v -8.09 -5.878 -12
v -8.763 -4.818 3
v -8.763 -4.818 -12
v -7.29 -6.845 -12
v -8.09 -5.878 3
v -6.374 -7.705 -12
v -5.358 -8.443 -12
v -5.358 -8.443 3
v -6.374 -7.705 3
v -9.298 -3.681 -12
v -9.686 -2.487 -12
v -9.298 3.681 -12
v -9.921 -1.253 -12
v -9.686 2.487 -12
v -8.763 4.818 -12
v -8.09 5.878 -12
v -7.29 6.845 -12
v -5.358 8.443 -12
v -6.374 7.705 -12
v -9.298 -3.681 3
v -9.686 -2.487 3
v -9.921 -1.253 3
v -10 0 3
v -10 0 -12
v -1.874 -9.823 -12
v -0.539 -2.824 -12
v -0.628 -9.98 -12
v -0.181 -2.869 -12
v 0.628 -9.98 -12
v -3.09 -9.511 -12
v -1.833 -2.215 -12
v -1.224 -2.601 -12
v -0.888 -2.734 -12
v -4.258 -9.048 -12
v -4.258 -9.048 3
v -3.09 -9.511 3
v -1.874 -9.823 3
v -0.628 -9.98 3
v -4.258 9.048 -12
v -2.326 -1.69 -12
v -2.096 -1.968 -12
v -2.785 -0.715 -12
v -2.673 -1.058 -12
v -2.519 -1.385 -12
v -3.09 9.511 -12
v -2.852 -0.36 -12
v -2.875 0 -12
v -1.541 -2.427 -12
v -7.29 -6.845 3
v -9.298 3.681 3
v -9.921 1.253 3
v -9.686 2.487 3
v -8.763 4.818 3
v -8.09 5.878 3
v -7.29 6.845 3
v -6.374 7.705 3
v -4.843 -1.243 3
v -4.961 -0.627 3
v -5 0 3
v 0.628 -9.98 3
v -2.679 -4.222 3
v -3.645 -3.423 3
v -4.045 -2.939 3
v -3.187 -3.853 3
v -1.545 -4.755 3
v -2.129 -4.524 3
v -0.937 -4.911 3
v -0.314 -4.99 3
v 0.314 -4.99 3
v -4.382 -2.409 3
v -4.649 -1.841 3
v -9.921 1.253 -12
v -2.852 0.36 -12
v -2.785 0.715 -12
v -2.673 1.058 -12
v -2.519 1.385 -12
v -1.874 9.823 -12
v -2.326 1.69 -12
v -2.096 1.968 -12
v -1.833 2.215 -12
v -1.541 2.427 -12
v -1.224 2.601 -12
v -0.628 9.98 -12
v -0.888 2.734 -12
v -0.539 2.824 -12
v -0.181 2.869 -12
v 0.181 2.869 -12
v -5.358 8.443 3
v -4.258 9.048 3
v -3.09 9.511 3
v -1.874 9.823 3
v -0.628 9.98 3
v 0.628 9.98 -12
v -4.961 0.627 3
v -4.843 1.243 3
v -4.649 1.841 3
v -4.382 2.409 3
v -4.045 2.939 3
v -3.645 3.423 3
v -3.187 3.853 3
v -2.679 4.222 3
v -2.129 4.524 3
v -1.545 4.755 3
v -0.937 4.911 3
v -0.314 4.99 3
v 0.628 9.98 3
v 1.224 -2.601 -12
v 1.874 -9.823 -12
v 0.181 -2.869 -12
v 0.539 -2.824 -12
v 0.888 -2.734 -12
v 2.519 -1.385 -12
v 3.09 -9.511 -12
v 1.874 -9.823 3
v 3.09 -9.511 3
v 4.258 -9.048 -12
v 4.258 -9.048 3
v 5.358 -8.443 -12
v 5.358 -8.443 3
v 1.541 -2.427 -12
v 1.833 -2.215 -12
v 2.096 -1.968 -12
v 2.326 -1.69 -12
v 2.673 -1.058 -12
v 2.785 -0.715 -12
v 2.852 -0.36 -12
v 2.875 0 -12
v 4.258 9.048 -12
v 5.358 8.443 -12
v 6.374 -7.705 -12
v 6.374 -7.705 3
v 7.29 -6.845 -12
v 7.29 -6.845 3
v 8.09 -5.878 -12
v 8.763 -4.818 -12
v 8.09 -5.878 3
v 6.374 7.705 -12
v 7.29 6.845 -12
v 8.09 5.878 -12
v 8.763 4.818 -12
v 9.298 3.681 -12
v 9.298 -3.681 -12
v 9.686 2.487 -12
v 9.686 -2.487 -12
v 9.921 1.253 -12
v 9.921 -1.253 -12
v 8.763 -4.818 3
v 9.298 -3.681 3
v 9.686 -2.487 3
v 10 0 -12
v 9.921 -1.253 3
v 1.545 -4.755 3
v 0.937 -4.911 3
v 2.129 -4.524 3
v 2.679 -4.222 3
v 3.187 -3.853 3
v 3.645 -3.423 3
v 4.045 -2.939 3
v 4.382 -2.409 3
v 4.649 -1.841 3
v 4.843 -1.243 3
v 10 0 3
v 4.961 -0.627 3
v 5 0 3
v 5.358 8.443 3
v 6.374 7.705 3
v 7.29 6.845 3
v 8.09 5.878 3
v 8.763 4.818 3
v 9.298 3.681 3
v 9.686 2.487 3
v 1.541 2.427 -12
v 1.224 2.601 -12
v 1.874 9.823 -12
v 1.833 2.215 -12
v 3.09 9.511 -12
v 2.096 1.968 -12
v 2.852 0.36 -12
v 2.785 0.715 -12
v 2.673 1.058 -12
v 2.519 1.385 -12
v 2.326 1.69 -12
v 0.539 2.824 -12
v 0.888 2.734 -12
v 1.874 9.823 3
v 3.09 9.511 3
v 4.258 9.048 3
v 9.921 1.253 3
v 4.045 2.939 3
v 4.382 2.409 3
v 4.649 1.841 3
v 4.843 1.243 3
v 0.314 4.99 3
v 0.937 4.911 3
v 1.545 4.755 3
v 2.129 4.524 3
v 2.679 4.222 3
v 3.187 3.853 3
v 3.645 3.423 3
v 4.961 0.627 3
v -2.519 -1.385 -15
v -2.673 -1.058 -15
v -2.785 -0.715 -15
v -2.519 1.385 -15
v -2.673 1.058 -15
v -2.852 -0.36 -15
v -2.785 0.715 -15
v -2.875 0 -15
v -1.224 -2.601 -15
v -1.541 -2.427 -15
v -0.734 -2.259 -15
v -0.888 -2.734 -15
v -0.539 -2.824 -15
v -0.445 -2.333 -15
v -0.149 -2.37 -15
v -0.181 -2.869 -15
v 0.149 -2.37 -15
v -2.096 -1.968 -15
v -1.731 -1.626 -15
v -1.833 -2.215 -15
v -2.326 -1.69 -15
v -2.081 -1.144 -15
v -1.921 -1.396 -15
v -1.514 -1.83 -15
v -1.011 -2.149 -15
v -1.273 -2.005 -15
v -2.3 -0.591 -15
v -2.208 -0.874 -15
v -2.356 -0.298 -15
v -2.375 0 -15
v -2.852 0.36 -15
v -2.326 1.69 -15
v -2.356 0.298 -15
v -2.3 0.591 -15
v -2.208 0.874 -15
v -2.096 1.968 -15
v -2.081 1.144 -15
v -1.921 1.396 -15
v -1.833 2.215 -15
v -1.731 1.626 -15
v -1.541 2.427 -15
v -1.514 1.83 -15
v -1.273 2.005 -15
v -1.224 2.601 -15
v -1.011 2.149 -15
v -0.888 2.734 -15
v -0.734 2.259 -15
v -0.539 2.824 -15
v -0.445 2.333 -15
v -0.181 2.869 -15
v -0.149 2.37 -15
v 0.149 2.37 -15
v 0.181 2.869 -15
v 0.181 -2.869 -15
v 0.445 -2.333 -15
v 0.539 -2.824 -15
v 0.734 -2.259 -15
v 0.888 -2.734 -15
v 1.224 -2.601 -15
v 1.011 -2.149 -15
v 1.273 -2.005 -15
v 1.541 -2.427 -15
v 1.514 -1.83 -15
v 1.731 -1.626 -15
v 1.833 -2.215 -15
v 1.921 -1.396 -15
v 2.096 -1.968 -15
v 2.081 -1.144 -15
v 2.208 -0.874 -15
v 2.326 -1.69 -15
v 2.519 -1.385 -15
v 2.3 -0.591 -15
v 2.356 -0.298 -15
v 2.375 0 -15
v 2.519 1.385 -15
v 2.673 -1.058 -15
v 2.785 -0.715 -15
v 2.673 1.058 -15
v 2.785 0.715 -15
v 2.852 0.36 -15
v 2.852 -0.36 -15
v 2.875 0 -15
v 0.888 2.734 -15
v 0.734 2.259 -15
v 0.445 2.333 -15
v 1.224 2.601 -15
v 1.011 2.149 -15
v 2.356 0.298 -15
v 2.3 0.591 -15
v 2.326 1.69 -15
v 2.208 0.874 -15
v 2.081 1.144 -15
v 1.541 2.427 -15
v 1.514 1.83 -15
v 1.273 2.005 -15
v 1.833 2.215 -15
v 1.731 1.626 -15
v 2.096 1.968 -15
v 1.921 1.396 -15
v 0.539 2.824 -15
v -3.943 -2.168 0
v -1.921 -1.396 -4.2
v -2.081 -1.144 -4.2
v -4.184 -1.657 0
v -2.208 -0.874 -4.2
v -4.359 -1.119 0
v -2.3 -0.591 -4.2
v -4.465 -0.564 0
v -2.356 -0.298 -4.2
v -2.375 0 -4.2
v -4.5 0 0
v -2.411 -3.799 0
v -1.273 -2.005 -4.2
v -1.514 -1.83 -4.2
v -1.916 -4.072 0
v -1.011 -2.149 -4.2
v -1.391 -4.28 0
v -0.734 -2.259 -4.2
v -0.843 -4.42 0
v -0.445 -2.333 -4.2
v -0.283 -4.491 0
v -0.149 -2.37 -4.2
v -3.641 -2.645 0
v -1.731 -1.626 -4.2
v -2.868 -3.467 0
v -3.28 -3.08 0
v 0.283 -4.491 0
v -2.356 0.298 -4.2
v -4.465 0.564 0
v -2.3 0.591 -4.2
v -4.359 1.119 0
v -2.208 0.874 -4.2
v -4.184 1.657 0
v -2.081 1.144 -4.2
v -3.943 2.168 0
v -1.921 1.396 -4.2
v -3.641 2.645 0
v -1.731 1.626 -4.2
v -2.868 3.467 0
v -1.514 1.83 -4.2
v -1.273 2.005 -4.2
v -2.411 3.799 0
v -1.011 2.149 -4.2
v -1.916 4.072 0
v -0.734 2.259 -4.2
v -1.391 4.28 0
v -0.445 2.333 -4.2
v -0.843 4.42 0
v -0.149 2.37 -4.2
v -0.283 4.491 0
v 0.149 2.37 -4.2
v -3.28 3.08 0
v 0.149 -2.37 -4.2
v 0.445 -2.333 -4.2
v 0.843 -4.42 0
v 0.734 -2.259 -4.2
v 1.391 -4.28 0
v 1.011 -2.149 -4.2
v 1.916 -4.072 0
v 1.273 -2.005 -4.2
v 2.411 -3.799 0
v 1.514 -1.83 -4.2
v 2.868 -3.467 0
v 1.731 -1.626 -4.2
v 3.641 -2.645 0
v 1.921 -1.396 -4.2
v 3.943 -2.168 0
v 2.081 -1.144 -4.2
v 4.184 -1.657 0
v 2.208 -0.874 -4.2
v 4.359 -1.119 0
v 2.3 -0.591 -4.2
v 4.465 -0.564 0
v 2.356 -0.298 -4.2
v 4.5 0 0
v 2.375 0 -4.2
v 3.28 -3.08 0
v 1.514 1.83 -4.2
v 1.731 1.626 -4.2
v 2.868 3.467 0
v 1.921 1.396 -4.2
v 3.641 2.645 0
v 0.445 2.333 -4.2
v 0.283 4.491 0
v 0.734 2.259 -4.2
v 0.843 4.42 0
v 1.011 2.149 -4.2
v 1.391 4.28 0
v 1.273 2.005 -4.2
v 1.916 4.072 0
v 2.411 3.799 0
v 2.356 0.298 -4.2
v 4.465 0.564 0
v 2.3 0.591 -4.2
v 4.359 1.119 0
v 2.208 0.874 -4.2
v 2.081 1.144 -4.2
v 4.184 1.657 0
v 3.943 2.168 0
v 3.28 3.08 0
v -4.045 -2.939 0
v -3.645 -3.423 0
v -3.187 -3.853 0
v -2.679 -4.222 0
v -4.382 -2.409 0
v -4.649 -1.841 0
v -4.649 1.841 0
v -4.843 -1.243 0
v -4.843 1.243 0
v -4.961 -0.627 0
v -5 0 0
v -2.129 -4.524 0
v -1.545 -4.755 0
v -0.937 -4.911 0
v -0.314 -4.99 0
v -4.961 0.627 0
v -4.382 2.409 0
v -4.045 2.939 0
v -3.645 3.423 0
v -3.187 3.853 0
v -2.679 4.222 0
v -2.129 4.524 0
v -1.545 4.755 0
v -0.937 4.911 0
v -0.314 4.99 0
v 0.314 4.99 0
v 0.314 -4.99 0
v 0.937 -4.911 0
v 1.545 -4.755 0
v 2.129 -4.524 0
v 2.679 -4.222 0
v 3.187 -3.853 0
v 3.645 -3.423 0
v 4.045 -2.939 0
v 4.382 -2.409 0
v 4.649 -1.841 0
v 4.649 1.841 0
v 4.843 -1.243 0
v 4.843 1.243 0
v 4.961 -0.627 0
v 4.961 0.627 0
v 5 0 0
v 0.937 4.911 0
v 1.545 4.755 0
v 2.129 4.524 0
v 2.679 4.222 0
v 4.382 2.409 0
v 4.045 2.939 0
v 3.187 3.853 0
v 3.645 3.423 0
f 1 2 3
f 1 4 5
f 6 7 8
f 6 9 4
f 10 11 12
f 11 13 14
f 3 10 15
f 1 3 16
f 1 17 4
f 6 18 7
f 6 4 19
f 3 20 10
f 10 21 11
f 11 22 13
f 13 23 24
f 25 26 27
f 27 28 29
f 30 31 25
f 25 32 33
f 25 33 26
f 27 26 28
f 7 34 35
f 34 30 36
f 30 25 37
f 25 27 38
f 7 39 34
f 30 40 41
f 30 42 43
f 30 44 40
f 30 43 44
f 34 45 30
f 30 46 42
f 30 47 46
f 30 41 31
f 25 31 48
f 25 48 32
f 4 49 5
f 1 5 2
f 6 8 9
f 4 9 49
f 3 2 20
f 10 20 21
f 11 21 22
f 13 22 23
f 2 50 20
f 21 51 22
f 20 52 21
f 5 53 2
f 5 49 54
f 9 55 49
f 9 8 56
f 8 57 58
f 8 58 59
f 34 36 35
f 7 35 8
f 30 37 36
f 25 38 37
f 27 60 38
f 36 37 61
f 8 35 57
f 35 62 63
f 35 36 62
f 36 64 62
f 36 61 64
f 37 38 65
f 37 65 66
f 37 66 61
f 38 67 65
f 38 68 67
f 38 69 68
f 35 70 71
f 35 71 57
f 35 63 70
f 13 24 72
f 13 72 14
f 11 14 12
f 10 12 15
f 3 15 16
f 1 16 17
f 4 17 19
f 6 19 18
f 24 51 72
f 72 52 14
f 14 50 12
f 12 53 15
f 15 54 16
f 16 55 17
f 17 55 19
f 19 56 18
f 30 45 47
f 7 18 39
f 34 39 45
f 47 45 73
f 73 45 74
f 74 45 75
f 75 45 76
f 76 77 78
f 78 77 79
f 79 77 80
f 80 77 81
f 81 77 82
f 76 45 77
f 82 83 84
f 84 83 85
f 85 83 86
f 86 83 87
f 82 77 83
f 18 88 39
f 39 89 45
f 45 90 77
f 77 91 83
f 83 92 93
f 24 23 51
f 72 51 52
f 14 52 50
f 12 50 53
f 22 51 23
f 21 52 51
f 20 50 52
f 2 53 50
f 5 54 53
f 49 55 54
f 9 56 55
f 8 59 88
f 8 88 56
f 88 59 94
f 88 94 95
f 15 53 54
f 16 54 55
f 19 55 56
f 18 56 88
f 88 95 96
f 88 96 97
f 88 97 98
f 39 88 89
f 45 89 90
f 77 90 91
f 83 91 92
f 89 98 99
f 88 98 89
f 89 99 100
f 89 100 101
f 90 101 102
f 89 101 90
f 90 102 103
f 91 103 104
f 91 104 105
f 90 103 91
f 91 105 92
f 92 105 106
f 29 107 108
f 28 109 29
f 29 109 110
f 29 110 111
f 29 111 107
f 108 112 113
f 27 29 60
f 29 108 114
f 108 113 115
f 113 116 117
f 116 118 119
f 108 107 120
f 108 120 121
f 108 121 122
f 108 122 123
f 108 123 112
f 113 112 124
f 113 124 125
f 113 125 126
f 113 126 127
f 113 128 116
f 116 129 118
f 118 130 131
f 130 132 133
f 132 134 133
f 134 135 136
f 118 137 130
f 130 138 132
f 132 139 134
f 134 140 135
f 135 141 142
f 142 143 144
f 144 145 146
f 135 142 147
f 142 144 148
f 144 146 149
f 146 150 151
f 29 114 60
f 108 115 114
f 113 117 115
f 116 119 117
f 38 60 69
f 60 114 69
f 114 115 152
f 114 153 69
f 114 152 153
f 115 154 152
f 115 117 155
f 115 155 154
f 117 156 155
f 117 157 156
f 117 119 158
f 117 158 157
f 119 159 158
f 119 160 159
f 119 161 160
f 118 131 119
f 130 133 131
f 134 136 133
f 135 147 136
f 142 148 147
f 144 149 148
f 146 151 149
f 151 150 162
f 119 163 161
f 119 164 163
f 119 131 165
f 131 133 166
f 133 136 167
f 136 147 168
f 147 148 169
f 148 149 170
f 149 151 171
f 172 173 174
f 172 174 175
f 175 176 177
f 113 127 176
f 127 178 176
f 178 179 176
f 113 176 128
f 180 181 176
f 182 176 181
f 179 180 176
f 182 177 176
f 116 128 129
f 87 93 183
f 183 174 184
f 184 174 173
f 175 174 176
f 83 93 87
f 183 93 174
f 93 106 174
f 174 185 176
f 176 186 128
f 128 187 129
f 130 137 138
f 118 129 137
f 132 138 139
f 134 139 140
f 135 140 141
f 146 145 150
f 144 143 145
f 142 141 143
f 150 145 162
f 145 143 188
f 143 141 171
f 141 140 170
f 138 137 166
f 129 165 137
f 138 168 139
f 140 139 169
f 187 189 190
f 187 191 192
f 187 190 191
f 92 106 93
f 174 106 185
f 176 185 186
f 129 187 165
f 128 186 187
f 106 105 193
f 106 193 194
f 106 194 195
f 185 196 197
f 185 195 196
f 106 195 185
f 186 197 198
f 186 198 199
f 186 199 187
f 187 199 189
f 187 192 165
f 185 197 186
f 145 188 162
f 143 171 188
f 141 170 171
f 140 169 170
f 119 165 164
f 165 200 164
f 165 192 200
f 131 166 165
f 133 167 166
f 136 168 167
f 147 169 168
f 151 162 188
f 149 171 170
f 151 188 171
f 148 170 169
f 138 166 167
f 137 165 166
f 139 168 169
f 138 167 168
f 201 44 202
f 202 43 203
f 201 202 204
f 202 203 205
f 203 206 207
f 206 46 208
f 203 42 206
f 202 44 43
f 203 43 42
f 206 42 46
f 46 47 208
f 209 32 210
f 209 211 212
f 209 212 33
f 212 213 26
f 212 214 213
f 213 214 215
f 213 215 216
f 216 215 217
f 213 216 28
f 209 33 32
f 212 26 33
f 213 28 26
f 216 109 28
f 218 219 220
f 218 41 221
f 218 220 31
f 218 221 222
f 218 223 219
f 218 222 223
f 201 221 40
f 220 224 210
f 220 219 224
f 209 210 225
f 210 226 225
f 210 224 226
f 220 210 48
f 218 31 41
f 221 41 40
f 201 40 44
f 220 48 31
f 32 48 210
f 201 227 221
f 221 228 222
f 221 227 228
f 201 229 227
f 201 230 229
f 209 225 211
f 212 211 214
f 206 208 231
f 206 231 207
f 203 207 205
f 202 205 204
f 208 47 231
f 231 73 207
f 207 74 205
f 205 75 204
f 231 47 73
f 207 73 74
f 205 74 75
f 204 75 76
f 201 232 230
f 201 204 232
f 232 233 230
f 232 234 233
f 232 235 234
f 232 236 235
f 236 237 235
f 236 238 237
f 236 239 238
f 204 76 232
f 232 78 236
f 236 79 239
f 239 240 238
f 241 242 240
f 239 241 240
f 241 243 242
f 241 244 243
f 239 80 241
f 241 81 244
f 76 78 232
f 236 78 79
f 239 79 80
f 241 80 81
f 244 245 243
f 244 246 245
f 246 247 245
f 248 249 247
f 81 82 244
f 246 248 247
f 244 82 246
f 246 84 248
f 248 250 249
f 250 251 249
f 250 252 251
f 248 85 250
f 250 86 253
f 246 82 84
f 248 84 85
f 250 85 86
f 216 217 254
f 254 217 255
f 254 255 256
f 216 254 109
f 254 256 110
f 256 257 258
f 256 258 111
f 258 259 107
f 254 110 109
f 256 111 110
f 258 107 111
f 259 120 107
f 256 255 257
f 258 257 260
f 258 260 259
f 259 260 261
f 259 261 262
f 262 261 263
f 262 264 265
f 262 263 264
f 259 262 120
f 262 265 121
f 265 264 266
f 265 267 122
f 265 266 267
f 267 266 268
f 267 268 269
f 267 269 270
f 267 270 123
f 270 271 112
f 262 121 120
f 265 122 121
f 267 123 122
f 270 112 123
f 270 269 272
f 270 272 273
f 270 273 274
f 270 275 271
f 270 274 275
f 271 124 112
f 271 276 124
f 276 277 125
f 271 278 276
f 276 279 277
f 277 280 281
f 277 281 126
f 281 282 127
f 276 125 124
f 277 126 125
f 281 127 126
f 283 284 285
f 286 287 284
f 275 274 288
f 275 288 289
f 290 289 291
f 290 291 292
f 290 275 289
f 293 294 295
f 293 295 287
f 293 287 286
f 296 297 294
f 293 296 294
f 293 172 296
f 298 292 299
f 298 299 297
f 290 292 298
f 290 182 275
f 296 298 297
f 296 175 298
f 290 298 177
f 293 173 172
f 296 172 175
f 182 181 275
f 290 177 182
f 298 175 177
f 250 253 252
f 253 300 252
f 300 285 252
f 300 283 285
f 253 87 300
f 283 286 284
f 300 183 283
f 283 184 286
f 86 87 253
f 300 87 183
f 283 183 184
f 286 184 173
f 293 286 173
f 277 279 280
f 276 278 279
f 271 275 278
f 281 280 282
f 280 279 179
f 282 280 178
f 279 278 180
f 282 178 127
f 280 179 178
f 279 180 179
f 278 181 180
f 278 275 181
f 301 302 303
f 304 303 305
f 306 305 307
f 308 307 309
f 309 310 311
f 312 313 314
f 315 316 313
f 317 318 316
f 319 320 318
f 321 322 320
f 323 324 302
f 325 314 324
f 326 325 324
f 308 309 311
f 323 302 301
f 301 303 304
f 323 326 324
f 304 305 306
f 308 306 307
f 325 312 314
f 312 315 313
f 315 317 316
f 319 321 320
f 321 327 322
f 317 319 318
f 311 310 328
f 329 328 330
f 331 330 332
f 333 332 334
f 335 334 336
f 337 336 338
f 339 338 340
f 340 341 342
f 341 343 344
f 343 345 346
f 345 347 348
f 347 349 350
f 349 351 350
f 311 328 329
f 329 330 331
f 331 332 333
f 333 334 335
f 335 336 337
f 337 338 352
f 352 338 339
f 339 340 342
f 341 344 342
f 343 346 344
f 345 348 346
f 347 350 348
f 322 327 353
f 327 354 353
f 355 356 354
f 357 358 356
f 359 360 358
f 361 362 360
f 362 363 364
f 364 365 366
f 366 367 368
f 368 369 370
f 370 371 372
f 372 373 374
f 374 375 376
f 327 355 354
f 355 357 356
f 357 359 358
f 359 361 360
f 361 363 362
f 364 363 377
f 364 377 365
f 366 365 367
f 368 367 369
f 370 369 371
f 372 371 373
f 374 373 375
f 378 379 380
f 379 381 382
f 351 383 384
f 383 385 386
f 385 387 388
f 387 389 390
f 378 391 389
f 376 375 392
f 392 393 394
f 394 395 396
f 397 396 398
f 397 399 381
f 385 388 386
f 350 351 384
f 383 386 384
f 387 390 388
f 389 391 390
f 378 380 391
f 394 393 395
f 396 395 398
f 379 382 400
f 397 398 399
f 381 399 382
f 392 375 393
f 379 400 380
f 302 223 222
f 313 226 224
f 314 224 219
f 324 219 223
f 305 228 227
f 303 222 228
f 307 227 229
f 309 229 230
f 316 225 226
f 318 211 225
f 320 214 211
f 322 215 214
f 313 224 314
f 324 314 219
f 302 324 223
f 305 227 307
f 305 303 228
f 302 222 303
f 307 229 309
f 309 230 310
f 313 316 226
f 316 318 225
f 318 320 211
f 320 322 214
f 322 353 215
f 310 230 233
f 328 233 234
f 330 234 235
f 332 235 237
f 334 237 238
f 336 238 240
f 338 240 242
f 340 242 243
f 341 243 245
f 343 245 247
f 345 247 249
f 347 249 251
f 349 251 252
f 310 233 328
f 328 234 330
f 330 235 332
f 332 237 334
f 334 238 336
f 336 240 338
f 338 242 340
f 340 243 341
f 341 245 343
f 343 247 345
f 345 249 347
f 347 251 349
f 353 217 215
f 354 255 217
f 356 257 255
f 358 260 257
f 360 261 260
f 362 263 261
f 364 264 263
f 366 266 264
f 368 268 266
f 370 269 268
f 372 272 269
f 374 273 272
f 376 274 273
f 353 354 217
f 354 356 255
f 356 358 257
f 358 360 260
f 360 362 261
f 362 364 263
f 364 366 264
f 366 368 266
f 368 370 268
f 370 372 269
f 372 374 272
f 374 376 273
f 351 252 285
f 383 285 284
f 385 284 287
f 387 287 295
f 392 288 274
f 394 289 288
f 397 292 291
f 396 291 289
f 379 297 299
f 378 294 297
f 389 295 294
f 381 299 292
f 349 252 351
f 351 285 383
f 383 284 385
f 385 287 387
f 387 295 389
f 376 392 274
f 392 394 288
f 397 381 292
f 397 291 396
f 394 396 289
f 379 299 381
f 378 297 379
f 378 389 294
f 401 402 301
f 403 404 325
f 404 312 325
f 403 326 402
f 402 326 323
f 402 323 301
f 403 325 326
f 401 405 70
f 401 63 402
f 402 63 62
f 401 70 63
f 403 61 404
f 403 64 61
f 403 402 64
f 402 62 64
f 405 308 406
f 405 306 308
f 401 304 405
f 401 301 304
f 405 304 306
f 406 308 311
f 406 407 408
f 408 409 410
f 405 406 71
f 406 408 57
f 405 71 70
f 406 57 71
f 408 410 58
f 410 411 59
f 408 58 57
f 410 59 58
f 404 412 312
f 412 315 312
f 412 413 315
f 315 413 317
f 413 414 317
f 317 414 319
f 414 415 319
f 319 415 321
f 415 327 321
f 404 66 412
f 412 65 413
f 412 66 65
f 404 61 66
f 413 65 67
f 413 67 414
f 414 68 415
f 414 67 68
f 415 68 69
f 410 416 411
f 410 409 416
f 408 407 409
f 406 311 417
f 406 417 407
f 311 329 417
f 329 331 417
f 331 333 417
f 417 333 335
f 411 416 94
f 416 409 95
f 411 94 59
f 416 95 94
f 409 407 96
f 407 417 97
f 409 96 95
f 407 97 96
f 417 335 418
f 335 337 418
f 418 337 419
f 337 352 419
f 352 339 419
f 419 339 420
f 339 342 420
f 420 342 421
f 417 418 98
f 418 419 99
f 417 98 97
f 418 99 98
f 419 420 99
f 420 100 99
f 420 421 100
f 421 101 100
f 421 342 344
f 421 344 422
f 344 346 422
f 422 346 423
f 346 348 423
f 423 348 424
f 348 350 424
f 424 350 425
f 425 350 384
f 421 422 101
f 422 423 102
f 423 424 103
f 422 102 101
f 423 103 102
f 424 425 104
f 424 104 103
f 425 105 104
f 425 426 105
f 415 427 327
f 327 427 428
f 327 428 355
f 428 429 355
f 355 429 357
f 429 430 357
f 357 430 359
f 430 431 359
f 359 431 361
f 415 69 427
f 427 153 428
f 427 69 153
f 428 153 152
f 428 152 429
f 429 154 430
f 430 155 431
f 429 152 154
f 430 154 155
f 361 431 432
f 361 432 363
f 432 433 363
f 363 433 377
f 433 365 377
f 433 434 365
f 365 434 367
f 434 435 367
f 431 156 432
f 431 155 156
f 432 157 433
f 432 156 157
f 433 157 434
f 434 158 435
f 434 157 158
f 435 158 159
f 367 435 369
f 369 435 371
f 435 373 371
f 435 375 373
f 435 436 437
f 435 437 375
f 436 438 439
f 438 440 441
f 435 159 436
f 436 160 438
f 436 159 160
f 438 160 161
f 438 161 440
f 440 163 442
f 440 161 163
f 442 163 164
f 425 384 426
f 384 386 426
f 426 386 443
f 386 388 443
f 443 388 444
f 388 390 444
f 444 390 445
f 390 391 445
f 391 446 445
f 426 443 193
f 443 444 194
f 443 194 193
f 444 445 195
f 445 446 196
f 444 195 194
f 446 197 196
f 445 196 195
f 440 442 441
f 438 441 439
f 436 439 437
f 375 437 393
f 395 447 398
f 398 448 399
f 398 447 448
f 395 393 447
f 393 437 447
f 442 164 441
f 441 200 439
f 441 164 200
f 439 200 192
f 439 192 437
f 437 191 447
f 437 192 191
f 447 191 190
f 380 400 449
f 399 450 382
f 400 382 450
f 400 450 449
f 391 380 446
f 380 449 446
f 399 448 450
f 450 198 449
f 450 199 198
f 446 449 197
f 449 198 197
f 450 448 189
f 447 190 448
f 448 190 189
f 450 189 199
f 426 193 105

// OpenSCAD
$fn = 50;

difference() {
	union() {
		translate(v = [0, 0, -12.0]) {
			cylinder(h = 15, r = 10.0);
		}
		#translate(v = [0, 0, -15.0]) {
			cylinder(h = 15, r = 2.875);
		}
	}
	union() {
		translate(v = [0, 0, 0]) {
			rotate(a = [0, 0, 0]) {
				difference() {
					union() {
						translate(v = [0, 0, -15.0]) {
							cylinder(h = 15, r = 2.25);
						}
						translate(v = [0, 0, -4.2]) {
							cylinder(h = 4.2, r1 = 2.375, r2 = 4.5);
						}
						translate(v = [0, 0, -15.0]) {
							cylinder(h = 15, r = 2.375);
						}
						translate(v = [0, 0, -15.0]) {
							cylinder(h = 15, r = 2.25);
						}
					}
					union();
				}
			}
		}
		#cylinder(h = 3, r = 5.0);
	}
}
